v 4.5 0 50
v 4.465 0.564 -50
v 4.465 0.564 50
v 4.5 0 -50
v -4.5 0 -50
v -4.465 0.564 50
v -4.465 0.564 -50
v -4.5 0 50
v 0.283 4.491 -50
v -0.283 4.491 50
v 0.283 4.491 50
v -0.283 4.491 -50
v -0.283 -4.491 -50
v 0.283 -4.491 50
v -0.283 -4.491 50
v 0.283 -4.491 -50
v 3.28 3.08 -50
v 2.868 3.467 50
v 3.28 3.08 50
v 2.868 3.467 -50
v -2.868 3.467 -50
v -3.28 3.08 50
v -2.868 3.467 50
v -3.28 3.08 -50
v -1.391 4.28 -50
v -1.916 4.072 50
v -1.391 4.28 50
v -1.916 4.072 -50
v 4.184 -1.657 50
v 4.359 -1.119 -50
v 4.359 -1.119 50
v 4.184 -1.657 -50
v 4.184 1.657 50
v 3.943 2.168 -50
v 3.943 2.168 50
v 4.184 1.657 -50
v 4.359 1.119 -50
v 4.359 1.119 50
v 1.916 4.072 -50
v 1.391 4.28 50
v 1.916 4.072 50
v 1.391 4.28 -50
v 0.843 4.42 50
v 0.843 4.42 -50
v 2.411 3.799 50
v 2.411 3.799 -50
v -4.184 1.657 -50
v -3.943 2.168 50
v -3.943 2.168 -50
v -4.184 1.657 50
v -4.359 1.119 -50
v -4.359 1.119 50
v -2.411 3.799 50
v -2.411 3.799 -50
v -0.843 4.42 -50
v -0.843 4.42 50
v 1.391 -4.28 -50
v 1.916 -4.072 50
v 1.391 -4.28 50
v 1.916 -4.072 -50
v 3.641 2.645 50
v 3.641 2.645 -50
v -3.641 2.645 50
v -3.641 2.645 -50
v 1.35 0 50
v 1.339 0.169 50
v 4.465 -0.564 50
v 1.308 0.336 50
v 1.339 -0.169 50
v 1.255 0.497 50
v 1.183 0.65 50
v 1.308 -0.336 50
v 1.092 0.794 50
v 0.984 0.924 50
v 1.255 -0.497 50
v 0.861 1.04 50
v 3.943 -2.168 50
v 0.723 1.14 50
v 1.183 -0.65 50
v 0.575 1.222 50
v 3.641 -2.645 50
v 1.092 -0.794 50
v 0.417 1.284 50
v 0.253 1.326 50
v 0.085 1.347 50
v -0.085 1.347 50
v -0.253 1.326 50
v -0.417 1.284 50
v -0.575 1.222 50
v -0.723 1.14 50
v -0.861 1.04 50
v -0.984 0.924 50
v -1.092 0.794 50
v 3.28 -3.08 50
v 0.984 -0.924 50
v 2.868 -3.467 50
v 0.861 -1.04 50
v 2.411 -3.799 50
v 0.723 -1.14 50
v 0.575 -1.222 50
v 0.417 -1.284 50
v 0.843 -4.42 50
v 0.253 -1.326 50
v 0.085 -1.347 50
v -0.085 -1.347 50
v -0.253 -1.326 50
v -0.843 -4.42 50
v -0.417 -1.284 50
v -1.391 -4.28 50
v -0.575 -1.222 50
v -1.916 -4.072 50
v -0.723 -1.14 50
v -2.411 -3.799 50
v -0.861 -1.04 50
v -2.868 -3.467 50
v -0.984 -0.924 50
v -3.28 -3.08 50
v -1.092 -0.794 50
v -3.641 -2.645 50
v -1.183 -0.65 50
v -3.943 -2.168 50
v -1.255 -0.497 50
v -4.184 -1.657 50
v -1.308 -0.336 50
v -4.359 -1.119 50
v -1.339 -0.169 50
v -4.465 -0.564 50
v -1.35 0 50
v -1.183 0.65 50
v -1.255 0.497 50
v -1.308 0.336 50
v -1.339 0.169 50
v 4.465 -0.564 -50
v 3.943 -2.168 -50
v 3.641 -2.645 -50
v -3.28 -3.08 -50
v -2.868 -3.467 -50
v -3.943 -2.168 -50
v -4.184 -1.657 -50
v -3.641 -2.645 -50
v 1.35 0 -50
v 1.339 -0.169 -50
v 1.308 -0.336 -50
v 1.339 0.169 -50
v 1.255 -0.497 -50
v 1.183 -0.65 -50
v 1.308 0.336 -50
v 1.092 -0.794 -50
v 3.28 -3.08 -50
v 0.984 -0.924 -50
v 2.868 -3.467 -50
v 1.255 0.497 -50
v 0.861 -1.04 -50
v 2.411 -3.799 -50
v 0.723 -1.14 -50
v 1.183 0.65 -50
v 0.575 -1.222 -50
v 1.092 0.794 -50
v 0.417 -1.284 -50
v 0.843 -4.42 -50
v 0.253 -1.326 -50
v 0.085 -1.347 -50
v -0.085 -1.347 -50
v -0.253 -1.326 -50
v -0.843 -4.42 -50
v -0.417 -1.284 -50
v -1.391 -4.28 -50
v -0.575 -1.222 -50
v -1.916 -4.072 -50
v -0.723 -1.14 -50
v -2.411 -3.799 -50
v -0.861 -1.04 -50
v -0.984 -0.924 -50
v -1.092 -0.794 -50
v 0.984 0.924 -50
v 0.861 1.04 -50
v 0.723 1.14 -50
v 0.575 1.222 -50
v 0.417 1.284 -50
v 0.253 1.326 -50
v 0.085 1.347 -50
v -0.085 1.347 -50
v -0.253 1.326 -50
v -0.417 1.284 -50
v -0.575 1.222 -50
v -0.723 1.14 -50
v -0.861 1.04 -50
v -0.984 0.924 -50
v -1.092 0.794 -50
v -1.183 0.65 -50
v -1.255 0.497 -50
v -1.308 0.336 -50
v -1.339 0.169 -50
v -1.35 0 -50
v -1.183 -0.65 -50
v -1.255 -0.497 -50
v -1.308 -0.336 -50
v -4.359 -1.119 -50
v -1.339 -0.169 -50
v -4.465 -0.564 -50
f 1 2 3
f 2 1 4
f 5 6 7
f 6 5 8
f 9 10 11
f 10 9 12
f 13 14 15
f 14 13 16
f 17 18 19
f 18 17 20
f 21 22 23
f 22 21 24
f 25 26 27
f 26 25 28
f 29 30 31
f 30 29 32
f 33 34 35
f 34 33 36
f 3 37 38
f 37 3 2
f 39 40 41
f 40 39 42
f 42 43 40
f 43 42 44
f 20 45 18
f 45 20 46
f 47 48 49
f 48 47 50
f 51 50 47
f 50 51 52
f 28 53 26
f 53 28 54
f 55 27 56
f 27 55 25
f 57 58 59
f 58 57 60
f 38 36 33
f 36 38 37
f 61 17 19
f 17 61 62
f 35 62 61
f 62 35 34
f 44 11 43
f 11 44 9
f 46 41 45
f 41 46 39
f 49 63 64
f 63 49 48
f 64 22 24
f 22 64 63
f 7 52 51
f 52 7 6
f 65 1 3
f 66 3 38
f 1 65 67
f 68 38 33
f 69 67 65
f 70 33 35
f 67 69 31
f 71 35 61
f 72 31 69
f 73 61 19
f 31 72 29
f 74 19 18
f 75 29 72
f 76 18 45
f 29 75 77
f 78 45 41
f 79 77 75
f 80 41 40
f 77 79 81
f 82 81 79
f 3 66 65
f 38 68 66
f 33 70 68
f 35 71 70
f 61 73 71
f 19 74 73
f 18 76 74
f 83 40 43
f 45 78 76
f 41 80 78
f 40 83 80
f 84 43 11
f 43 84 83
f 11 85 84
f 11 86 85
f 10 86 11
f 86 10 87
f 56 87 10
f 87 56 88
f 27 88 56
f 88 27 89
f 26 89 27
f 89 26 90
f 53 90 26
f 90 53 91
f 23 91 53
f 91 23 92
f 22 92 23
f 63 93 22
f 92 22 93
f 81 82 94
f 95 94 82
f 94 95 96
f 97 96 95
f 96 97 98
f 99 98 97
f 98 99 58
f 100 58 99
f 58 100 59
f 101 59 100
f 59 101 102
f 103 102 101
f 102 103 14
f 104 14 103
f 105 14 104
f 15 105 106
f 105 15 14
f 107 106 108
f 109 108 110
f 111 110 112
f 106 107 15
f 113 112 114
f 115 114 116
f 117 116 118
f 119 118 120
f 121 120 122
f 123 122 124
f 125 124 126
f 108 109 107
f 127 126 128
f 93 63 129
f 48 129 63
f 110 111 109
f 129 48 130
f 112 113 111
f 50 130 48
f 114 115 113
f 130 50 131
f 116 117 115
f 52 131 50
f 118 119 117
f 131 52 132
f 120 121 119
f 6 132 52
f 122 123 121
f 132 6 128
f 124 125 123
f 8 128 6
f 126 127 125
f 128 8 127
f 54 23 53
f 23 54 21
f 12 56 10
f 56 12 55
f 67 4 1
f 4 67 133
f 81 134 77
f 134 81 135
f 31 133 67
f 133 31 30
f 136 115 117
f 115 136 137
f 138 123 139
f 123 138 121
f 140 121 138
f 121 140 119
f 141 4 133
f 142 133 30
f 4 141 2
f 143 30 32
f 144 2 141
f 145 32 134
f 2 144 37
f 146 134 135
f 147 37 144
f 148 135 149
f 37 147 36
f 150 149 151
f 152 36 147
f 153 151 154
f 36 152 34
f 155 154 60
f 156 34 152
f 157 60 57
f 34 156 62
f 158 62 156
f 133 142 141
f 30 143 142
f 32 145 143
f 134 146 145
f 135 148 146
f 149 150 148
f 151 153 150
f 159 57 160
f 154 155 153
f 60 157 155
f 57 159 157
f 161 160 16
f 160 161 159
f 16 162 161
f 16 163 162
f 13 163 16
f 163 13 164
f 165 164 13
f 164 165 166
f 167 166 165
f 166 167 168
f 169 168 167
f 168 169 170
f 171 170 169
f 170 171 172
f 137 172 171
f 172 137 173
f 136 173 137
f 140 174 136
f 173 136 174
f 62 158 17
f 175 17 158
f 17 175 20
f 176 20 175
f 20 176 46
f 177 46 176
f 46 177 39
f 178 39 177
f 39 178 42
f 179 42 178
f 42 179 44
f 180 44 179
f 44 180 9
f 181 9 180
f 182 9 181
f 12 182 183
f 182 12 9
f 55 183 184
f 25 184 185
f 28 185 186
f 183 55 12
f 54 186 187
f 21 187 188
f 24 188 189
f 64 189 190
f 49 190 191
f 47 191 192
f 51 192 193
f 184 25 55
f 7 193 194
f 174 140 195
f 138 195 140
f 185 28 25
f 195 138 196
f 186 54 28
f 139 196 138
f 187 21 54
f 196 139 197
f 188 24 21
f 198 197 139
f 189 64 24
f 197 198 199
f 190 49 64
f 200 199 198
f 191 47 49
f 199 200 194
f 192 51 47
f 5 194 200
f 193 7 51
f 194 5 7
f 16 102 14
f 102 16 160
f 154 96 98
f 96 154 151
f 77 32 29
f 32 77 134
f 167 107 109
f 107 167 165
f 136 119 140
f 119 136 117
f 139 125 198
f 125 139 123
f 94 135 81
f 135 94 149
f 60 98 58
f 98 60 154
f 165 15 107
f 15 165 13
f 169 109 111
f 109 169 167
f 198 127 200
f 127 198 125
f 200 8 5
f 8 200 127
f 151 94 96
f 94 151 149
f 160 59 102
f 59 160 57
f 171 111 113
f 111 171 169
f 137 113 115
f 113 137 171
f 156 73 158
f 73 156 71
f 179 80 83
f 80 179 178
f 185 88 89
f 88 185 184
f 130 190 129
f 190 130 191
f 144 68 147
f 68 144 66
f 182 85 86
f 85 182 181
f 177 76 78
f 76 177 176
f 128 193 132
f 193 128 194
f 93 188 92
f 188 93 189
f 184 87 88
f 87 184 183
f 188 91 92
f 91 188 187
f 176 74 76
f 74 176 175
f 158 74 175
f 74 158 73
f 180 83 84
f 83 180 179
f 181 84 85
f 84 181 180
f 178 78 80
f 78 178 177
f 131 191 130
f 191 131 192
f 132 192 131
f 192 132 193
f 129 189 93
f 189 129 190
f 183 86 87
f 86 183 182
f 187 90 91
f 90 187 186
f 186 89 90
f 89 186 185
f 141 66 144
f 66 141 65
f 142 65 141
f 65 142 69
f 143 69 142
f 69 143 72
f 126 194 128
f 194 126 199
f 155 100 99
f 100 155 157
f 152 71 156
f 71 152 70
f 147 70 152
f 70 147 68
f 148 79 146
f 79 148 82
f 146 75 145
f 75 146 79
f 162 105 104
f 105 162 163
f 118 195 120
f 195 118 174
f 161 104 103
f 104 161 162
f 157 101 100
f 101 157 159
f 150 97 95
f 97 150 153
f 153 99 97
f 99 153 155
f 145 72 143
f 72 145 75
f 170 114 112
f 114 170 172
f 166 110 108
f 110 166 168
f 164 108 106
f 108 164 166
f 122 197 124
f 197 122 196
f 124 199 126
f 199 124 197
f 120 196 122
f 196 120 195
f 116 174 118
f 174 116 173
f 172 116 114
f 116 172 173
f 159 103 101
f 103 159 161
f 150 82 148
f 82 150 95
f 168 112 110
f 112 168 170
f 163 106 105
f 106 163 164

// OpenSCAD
$fn = 50;


difference() {
	union() {
		translate(v = [0, 0, -50.0000000000]) {
			cylinder(h = 100, r = 4.5000000000);
		}
	}
	union() {
		translate(v = [0, 0, -100.0000000000]) {
			cylinder(h = 200, r = 1.3500000000);
		}
	}
}
